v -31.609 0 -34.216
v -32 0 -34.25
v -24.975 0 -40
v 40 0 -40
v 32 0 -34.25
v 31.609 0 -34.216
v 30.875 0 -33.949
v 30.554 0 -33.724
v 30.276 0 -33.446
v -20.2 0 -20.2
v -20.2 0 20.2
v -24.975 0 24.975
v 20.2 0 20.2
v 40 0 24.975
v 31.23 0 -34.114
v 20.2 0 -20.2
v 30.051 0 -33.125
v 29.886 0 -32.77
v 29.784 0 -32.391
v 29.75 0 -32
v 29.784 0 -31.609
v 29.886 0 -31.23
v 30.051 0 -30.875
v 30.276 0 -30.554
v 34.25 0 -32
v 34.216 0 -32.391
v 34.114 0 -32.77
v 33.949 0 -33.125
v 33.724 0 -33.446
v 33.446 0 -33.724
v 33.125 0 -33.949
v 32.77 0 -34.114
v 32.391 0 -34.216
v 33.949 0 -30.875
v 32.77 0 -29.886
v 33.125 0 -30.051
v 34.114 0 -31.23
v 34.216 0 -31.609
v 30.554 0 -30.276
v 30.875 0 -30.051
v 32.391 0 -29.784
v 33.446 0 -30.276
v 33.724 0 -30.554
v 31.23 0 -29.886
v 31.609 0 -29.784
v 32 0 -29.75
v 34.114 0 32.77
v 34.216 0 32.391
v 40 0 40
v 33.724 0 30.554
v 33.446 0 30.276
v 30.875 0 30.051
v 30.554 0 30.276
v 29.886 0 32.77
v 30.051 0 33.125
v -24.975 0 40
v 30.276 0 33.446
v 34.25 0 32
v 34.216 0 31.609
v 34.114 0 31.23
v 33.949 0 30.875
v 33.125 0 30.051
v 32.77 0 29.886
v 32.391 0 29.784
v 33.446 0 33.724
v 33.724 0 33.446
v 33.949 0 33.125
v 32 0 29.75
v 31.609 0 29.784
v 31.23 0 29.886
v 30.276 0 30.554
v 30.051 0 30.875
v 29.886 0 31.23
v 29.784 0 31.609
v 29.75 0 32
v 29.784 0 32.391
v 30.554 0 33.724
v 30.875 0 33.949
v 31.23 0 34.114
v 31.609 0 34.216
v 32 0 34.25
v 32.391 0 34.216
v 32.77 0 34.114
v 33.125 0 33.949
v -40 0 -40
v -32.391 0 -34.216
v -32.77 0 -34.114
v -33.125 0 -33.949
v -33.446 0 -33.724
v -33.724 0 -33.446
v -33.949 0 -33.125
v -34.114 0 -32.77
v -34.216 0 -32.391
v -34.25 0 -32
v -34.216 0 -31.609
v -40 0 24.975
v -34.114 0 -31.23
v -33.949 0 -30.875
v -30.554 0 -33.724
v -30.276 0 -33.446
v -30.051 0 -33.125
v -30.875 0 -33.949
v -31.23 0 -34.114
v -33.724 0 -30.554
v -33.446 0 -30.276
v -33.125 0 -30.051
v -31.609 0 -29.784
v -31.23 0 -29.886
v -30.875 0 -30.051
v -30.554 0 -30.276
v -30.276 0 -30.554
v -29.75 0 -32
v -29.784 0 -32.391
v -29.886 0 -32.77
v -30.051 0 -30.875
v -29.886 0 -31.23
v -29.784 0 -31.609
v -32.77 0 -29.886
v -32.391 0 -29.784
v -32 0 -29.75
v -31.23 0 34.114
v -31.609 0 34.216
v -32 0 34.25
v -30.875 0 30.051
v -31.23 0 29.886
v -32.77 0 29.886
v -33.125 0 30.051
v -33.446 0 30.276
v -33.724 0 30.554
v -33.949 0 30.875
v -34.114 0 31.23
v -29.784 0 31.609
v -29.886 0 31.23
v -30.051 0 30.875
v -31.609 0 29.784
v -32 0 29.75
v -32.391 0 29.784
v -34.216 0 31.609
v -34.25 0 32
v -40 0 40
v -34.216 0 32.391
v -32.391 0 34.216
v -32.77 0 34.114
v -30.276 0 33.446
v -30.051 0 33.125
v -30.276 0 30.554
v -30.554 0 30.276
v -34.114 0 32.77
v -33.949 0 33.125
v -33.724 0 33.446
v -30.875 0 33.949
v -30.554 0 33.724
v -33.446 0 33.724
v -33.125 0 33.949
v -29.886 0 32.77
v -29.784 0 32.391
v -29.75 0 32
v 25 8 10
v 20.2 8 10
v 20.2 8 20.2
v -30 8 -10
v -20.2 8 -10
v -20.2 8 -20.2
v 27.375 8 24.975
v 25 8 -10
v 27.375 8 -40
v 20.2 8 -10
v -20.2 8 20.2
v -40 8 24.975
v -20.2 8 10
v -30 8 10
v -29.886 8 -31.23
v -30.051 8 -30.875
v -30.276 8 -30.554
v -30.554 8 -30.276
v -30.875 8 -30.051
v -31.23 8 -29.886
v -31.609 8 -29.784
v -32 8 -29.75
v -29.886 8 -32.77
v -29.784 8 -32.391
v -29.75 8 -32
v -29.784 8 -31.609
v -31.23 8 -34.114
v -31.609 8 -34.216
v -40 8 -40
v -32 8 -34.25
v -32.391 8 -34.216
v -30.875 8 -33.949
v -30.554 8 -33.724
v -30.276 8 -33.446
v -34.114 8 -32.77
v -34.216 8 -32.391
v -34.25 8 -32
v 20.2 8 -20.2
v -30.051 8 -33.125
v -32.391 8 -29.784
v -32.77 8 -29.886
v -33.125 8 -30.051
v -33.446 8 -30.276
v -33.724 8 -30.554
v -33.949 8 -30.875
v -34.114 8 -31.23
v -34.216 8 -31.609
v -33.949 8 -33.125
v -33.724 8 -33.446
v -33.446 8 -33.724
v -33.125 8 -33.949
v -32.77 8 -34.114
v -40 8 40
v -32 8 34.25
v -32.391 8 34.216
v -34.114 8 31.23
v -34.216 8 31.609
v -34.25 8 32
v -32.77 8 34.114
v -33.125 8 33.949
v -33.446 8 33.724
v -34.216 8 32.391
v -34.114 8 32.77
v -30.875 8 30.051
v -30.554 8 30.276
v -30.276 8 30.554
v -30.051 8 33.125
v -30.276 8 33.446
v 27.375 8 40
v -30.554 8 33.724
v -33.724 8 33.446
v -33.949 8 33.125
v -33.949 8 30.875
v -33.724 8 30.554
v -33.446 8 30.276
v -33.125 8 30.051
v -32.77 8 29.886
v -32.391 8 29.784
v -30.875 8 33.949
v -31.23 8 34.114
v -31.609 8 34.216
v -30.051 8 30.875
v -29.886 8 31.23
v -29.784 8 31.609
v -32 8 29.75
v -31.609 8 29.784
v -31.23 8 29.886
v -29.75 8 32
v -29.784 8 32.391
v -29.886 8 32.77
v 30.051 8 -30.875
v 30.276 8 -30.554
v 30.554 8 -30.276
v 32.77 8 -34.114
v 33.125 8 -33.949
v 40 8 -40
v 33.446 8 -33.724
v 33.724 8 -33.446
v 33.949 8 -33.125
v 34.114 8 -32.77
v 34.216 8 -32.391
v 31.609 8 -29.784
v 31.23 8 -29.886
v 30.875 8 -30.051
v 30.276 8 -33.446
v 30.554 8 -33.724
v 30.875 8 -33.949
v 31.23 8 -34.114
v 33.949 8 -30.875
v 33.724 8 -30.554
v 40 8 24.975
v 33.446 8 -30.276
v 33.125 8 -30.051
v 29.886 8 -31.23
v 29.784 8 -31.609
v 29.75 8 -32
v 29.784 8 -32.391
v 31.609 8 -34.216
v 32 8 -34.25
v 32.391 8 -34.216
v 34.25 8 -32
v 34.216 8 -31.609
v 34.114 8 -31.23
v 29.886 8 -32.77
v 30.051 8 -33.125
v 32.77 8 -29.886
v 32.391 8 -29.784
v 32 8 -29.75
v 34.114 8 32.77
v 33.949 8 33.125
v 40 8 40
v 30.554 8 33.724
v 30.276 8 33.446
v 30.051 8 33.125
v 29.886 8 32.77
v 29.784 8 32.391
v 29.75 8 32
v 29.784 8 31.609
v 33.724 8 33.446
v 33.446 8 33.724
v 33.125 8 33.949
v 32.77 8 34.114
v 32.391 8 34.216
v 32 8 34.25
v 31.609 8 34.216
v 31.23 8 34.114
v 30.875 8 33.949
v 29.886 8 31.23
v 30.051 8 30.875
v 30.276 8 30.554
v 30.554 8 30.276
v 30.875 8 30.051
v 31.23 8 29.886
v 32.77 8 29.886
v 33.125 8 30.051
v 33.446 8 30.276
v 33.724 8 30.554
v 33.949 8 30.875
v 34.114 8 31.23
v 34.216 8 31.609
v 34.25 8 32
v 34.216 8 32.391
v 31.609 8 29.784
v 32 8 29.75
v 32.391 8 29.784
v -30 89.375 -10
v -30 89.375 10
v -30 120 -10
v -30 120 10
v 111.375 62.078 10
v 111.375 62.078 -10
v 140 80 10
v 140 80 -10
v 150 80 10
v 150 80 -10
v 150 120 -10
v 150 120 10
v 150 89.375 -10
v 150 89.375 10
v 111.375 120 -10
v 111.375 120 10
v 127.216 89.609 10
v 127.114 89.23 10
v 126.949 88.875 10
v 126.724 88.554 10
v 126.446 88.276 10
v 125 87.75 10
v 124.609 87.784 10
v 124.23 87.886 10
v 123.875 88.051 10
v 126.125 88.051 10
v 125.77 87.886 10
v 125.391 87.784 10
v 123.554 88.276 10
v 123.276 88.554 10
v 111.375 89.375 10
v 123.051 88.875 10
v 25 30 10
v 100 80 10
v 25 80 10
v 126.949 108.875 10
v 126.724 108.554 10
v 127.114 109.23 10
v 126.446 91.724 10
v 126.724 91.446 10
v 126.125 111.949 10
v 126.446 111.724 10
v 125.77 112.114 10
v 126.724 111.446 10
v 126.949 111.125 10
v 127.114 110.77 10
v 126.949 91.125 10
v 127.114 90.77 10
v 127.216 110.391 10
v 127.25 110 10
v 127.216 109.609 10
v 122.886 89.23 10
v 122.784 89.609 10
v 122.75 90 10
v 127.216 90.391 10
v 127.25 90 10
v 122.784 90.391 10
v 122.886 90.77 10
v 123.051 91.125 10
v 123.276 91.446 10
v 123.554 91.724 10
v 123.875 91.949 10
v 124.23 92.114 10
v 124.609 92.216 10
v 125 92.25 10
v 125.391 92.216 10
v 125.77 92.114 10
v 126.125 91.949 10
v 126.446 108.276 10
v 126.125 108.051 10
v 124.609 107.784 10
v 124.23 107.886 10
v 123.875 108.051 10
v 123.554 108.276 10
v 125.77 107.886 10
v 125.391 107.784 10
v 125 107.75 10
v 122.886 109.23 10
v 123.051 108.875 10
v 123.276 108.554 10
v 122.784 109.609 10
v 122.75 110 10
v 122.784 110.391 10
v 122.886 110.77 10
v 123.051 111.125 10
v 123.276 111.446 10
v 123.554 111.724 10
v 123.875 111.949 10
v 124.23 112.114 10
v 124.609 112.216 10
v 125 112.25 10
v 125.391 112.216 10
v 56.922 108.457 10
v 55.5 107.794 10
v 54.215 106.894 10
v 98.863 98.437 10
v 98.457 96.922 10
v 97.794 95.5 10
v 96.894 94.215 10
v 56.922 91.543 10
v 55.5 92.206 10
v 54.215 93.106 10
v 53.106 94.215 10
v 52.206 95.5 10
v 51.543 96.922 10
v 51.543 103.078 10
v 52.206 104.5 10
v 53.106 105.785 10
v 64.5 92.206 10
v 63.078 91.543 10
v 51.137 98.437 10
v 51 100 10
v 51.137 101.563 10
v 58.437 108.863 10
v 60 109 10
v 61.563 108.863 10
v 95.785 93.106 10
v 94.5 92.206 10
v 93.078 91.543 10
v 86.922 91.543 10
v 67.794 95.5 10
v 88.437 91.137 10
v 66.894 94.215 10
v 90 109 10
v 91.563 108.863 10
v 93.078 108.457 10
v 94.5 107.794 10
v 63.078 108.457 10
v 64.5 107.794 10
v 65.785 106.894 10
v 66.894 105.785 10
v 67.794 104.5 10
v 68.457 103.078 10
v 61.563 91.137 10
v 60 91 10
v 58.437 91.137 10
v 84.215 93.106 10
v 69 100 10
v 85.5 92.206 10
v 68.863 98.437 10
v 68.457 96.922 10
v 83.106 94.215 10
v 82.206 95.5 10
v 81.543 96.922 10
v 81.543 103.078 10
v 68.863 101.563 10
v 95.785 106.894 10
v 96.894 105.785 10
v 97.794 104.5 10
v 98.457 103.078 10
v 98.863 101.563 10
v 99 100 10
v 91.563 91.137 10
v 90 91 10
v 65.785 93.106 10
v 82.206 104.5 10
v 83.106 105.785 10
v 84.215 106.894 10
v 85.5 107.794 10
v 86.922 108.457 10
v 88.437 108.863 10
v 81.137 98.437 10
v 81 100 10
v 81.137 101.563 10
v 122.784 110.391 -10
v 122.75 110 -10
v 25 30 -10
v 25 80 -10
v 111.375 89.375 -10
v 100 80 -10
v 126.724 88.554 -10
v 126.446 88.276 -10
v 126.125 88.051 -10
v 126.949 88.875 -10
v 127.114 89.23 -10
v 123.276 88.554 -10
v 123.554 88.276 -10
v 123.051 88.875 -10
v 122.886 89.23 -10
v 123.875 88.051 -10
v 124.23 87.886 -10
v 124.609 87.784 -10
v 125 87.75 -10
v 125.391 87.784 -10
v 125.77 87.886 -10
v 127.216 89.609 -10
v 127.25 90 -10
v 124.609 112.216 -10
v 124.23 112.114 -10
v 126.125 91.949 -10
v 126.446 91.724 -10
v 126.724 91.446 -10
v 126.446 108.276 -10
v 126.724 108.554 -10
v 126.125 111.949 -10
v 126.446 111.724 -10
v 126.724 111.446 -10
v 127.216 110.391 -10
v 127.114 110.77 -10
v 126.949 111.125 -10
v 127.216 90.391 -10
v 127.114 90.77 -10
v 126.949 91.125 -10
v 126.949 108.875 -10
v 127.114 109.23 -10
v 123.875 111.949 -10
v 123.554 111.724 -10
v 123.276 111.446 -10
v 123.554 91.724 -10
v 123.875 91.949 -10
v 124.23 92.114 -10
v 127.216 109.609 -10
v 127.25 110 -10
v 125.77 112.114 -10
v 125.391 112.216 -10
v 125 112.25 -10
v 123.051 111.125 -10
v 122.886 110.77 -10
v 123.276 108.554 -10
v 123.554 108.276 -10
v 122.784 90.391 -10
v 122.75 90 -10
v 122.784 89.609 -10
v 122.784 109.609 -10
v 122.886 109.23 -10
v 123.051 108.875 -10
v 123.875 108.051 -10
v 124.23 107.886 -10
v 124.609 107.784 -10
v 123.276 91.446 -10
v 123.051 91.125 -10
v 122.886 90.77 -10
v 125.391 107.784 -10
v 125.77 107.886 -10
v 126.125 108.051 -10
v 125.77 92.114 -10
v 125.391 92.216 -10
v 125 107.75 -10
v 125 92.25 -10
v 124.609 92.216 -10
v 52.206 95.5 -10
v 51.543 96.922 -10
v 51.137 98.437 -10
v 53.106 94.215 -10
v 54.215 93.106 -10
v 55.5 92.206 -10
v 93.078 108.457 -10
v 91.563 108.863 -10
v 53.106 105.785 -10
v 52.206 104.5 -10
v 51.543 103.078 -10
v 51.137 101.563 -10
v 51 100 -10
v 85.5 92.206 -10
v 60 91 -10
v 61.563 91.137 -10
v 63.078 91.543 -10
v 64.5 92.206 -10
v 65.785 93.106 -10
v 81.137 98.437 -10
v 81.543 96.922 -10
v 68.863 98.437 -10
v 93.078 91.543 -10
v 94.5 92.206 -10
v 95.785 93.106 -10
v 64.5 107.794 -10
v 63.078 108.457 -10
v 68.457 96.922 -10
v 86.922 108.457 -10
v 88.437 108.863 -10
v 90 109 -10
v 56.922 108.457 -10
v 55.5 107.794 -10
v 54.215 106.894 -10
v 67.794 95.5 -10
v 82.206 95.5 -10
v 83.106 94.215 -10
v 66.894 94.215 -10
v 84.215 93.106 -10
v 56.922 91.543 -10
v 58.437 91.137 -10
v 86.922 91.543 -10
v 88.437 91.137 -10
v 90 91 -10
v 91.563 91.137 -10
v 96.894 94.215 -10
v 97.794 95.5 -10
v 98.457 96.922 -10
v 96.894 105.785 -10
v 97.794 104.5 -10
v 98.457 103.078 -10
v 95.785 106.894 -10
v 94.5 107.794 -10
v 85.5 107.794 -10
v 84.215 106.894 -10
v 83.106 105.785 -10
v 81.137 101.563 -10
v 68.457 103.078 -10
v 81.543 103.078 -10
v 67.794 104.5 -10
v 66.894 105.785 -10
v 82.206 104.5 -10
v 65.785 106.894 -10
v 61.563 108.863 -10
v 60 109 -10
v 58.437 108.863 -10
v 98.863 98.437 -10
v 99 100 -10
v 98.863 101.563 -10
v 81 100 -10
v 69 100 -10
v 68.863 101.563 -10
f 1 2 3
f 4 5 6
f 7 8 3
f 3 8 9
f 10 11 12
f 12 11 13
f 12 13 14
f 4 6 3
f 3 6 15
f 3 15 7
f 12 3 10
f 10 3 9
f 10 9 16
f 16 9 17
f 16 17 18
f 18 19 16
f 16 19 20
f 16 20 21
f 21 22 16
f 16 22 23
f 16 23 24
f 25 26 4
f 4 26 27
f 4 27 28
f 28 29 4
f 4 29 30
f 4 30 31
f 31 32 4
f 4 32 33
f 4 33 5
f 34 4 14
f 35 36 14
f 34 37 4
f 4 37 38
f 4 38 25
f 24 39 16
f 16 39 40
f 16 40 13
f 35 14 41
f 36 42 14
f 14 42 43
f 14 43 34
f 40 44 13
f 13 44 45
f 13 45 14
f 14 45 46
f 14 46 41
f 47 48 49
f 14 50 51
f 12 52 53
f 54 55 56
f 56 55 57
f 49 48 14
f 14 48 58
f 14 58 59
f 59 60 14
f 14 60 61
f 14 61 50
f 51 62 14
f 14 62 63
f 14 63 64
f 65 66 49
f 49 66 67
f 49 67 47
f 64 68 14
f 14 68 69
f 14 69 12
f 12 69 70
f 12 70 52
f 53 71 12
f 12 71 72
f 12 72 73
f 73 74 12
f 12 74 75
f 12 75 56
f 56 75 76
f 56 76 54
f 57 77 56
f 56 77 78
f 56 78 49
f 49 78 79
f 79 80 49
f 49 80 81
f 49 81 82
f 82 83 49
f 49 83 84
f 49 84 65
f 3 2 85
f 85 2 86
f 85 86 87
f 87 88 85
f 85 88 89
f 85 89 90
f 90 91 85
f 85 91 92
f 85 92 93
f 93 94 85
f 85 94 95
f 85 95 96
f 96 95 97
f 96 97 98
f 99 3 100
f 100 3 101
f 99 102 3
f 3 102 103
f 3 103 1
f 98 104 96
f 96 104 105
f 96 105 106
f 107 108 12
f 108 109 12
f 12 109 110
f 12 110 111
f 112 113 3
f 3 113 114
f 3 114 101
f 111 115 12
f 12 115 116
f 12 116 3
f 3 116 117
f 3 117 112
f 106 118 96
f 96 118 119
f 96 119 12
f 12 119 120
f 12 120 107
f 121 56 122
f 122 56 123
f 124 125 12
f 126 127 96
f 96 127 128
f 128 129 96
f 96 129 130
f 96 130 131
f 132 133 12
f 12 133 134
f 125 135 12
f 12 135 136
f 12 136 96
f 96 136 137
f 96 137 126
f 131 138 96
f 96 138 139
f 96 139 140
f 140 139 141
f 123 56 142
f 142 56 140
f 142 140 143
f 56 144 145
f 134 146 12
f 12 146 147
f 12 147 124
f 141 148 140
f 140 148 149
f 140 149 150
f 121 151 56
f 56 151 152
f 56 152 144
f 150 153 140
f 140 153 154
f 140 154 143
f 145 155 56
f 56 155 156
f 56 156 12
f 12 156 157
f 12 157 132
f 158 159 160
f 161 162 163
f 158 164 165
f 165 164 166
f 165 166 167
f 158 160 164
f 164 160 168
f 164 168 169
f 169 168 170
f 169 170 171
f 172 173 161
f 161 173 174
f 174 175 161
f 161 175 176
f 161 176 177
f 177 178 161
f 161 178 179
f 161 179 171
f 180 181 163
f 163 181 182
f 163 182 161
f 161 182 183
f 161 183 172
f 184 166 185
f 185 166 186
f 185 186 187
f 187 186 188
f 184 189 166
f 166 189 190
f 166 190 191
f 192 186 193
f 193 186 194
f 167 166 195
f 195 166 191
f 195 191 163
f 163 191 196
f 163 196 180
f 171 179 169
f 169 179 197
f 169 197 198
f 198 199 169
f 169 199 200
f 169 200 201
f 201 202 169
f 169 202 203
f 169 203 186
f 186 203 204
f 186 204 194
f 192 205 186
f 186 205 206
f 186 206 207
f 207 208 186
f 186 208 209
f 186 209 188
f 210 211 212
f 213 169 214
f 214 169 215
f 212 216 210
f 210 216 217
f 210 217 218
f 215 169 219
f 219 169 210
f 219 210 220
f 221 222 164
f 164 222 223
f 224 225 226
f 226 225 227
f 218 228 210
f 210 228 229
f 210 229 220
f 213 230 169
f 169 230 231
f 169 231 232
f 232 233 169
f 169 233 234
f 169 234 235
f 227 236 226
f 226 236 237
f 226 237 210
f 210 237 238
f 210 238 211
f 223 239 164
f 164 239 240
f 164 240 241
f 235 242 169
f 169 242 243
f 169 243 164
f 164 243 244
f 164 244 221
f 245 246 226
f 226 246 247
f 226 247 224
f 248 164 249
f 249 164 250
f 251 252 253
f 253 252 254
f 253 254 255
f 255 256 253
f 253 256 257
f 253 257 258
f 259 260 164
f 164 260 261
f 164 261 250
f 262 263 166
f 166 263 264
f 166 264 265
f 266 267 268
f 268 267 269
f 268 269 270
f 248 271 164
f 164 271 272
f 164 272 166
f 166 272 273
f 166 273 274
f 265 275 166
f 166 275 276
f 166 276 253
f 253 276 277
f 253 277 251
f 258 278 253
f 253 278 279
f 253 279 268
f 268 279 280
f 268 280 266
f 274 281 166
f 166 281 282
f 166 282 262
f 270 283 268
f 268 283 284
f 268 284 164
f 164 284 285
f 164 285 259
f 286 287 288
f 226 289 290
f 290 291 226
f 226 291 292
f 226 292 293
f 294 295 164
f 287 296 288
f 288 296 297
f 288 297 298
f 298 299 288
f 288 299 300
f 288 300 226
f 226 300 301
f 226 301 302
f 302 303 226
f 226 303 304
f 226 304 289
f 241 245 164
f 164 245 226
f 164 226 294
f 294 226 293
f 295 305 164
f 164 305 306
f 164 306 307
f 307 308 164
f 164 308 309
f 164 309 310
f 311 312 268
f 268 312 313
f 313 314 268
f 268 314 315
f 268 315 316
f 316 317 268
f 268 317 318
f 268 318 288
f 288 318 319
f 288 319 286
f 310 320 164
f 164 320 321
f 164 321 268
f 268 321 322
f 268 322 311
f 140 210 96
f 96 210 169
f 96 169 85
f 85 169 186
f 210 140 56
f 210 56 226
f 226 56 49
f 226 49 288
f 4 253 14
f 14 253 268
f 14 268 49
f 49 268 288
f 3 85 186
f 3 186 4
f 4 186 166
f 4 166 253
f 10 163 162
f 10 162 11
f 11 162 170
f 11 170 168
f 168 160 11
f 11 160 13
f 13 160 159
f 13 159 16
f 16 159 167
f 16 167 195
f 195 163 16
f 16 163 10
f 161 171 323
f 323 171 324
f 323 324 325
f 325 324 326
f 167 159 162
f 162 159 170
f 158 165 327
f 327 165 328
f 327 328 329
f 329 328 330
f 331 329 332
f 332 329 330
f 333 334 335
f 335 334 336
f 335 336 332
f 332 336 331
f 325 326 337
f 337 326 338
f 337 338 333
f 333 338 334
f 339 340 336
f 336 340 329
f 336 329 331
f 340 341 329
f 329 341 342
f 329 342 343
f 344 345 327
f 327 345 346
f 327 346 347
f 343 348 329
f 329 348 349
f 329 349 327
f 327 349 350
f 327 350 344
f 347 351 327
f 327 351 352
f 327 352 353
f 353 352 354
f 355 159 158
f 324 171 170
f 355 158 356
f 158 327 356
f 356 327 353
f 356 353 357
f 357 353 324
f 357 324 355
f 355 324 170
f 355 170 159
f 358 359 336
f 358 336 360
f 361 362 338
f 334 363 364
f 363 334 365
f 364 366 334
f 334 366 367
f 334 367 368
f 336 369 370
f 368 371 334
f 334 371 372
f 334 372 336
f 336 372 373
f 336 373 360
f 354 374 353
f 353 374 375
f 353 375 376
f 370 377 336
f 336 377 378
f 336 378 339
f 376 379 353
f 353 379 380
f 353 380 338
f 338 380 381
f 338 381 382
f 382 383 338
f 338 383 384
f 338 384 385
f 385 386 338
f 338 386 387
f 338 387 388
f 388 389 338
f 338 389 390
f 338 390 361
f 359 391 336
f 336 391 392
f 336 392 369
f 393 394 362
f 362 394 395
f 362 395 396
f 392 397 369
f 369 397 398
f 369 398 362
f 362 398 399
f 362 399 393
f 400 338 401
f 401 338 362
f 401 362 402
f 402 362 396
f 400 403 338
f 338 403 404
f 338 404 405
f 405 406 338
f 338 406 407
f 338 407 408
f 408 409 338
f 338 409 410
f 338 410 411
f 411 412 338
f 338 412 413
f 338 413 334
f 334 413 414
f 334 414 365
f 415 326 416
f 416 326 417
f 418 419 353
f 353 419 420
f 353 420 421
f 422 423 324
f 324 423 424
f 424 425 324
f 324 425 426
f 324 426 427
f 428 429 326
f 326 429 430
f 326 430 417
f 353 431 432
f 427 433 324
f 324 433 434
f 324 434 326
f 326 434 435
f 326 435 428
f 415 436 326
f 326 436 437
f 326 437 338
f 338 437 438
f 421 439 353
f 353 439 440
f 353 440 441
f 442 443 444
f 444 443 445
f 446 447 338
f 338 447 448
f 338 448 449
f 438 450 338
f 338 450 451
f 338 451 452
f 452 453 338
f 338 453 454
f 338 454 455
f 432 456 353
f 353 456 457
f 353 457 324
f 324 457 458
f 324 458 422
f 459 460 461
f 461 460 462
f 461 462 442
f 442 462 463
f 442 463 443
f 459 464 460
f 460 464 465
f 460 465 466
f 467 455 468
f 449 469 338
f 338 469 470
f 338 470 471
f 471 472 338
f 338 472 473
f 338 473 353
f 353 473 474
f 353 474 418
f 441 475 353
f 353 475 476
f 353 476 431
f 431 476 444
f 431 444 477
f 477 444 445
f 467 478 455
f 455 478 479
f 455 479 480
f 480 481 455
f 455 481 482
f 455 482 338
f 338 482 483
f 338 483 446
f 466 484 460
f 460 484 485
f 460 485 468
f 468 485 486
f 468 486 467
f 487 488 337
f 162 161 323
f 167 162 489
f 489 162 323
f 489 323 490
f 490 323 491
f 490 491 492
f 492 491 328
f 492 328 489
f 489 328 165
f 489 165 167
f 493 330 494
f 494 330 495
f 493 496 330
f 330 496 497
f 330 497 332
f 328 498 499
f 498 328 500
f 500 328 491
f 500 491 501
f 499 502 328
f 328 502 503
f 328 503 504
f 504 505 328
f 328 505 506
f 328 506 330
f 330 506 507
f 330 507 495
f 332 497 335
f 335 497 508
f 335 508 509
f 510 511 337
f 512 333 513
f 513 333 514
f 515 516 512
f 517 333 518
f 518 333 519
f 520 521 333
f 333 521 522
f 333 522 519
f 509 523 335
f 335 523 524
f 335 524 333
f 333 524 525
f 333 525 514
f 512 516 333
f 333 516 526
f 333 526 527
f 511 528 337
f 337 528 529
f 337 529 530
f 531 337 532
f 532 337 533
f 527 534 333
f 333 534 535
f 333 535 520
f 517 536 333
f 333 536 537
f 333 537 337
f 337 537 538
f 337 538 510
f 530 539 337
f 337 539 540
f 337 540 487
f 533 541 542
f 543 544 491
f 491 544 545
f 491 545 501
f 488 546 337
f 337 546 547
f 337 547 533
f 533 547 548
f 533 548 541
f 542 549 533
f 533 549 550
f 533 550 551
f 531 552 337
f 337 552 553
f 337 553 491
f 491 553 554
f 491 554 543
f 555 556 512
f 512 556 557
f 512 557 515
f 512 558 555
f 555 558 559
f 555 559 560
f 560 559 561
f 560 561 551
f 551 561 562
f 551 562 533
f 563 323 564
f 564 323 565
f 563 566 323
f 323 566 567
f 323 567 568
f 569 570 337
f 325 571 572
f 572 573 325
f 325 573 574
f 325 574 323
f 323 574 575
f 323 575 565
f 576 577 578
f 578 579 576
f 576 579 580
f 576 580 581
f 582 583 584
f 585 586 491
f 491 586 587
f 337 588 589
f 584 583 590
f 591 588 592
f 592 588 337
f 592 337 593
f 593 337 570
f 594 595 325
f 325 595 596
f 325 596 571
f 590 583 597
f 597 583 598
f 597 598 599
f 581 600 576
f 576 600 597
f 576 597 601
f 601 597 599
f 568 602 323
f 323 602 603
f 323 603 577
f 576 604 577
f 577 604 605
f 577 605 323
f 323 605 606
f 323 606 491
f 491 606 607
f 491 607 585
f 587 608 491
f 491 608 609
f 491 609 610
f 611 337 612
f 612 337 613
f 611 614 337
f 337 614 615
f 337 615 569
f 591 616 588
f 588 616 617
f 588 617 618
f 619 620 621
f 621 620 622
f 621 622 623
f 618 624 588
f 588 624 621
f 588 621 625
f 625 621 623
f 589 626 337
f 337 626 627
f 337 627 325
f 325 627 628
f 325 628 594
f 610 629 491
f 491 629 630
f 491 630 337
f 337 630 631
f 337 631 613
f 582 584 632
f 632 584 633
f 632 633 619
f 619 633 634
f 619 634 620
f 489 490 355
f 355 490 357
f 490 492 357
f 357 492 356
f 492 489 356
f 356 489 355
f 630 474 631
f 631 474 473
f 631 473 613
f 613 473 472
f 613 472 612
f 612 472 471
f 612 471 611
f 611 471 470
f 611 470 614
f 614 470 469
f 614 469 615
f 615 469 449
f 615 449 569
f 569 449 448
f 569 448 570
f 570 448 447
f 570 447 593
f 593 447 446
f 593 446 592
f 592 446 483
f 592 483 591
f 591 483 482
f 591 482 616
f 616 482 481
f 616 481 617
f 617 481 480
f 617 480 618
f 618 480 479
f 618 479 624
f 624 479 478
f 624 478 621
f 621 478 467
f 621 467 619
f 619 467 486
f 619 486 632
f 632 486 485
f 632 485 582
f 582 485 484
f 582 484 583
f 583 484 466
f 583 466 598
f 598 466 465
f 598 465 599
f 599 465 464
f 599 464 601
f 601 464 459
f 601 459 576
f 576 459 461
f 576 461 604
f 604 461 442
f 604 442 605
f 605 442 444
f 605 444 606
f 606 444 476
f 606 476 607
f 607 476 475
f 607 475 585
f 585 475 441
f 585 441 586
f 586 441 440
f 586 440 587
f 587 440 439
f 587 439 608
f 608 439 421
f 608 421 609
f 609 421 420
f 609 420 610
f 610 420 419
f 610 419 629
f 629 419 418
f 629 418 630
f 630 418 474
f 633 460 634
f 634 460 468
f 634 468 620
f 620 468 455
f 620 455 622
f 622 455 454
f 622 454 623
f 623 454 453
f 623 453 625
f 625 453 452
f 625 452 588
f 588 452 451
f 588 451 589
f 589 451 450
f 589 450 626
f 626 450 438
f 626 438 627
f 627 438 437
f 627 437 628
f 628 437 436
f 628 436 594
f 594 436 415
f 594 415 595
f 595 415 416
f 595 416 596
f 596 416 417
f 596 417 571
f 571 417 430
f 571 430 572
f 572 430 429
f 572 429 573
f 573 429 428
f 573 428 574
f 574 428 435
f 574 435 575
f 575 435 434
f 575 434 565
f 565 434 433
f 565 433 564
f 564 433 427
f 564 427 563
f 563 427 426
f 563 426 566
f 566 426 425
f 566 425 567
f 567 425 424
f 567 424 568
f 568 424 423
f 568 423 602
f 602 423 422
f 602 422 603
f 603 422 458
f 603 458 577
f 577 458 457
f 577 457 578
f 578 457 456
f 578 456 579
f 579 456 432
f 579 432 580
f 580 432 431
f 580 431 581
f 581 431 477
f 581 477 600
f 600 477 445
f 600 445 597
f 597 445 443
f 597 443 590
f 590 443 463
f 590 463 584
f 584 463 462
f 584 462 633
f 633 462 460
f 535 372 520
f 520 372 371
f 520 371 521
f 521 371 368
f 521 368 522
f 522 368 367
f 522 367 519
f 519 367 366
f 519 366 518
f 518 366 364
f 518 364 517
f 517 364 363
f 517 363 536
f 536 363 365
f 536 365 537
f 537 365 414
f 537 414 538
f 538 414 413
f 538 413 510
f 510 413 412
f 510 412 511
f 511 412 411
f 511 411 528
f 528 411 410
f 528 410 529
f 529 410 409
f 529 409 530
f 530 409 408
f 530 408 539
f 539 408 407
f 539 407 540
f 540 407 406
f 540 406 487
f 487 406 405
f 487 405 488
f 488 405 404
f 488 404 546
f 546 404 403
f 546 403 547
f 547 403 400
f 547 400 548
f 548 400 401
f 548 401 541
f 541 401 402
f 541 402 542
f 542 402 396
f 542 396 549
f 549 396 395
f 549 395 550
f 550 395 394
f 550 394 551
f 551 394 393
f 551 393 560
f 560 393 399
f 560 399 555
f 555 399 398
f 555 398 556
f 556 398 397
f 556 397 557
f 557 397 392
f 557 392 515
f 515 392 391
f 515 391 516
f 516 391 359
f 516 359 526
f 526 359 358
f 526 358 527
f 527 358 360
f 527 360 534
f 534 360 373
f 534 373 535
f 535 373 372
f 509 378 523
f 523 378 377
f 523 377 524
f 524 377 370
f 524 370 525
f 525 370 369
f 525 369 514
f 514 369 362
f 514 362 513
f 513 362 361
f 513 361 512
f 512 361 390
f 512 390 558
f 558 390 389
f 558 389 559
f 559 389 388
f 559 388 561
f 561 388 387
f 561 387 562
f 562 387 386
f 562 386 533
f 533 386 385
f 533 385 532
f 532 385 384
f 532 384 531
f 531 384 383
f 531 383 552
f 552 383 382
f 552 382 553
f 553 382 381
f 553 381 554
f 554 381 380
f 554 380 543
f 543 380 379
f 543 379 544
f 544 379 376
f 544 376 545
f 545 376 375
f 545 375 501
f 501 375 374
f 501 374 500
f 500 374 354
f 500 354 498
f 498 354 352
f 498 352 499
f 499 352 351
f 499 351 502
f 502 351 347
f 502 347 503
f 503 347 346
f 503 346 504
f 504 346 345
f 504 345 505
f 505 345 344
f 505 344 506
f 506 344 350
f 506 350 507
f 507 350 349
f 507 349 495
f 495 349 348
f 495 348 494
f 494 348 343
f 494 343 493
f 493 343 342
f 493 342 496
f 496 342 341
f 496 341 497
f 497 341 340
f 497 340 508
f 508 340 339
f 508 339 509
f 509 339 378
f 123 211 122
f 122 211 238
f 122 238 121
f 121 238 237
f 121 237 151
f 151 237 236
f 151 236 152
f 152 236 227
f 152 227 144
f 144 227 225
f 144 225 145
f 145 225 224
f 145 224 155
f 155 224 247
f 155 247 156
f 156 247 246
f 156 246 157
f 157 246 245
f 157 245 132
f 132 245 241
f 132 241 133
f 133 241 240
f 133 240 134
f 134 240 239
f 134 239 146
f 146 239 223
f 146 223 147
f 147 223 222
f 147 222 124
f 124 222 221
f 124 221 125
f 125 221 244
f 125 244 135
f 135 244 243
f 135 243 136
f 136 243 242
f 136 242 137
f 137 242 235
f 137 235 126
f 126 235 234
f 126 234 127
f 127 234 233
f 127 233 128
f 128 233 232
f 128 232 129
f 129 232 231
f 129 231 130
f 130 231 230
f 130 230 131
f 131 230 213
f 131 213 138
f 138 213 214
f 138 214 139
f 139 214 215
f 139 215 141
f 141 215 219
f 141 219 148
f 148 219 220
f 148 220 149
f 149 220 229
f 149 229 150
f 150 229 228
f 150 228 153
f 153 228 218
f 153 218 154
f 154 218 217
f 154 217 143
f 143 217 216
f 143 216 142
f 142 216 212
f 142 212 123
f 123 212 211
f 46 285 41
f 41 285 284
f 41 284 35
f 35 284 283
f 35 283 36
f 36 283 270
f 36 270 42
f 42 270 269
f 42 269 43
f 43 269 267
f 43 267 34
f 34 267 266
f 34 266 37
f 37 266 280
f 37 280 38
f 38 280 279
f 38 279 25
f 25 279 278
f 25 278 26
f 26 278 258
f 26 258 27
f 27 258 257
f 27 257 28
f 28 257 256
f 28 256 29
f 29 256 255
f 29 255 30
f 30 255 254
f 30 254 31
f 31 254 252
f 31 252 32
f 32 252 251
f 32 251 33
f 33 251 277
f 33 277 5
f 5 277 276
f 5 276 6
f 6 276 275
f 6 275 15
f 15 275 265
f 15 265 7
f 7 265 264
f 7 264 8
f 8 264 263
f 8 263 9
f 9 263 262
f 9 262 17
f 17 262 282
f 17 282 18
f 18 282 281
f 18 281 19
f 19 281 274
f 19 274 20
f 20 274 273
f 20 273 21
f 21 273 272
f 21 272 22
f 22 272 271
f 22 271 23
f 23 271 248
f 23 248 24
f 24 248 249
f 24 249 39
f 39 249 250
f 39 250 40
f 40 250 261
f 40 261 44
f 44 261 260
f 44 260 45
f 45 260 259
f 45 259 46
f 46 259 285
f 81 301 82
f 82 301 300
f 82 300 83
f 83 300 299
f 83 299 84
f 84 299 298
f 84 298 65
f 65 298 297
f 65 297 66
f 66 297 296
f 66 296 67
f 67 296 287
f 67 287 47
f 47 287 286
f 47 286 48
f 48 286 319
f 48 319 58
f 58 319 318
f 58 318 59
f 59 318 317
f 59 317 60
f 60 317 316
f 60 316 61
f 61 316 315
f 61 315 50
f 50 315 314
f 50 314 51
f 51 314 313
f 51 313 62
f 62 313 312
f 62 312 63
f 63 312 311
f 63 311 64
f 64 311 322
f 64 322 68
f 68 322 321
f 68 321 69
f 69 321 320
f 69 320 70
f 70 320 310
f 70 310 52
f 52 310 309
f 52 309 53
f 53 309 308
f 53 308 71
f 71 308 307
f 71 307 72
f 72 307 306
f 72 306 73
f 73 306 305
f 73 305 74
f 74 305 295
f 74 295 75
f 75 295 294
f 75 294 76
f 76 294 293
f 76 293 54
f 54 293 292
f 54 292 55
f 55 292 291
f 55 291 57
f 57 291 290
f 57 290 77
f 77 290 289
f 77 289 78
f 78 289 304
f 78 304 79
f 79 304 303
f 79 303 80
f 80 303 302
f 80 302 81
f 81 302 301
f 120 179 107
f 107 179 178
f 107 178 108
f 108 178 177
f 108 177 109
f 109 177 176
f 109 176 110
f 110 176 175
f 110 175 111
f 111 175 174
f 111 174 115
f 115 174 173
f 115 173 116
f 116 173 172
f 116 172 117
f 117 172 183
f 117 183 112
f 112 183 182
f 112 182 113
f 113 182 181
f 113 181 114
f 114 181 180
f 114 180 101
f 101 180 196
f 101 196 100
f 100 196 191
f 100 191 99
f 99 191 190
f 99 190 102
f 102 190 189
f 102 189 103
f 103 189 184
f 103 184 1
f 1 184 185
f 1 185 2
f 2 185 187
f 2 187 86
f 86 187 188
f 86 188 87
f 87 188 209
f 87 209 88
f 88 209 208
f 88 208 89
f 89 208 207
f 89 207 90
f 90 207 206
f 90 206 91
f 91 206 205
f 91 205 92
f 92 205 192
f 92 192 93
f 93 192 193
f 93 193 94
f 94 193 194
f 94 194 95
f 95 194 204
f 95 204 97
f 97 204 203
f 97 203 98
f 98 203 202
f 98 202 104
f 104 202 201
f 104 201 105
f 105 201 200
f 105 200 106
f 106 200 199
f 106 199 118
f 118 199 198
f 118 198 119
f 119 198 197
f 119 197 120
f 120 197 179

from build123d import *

# Parameters (mm, degrees)
SKETCH_1_W                  = 80
SKETCH_1_H                  = 80
SKETCH_1_W_2                = 40.4
SKETCH_1_H_2                = 40.4
EXTRUDE_273_DEPTH           = 8
EXTRUDE_START               = -10
EXTRUDE_351_DEPTH           = 20
CUT_EXTRUDE_442_DEPTH       = 197.214168703
CUT_EXTRUDE_442_DEPTH_BACK  = 197.214168703
CUT_EXTRUDE_500_DEPTH       = 197.214168703
CUT_EXTRUDE_500_DEPTH_BACK  = 197.214168703
SKETCH_4_R                  = 9
CUT_EXTRUDE_M4_DEPTH        = 197.214168703
CUT_EXTRUDE_M4_DEPTH_BACK   = 197.214168703
SKETCH_5_R                  = 2.25
CUT_EXTRUDE_M4_2_DEPTH      = 197.214168703
CUT_EXTRUDE_M4_2_DEPTH_BACK = 197.214168703
SKETCH_6_R                  = 2.25


with BuildPart() as part:
    # 草图1 → Extrude 273 (new body)
    with BuildSketch(Plane(origin=(0, 0, 0), x_dir=(1, 0, 0), z_dir=(0, 1, 0))):
        Rectangle(SKETCH_1_W, SKETCH_1_H)
        Rectangle(SKETCH_1_W_2, SKETCH_1_H_2, mode=Mode.SUBTRACT)
    extrude(amount=EXTRUDE_273_DEPTH)

    # 草图2 → Extrude 351 (add)
    with BuildSketch(Plane.XY.offset(EXTRUDE_START)):
        Polygon((-30, 8), (25, 8), (140, 80), (150, 80), (150, 120), (-30, 120), align=None)
    extrude(amount=EXTRUDE_351_DEPTH)

    # 草图3 → Cut-Extrude 442 (cut, two sides: drawn at the far end of the back side and taken through both)
    with BuildSketch(Plane.XY.offset(-CUT_EXTRUDE_442_DEPTH_BACK)):
        Polygon((25, 30), (100, 80), (25, 80), align=None)
    extrude(amount=CUT_EXTRUDE_442_DEPTH + CUT_EXTRUDE_442_DEPTH_BACK, mode=Mode.SUBTRACT)

    # 草图4 → Cut-Extrude 500 (cut, two sides: drawn at the far end of the back side and taken through both)
    with BuildSketch(Plane.XY.offset(-CUT_EXTRUDE_500_DEPTH_BACK)):
        with Locations((60, 100)):
            Circle(SKETCH_4_R)
        with Locations((90, 100)):
            Circle(SKETCH_4_R)
    extrude(amount=CUT_EXTRUDE_500_DEPTH + CUT_EXTRUDE_500_DEPTH_BACK, mode=Mode.SUBTRACT)

    # 草图5 → Cut-Extrude M4 (cut, two sides: drawn at the far end of the back side and taken through both)
    with BuildSketch(Plane.XY.offset(-CUT_EXTRUDE_M4_DEPTH_BACK)):
        with Locations((125, 90)):
            Circle(SKETCH_5_R)
        with Locations((125, 110)):
            Circle(SKETCH_5_R)
    extrude(amount=CUT_EXTRUDE_M4_DEPTH + CUT_EXTRUDE_M4_DEPTH_BACK, mode=Mode.SUBTRACT)

    # 草图6 → Cut-Extrude M4 2 (cut, two sides: drawn at the far end of the back side and taken through both)
    with BuildSketch(Plane(origin=(0, 0, 0), x_dir=(1, 0, 0), z_dir=(0, 1, 0)).offset(-CUT_EXTRUDE_M4_2_DEPTH_BACK)):
        with Locations(Location((-32, -32, 0), (0, 0, 270))):
            Circle(SKETCH_6_R)
        with Locations(Location((-32, 32, 0), (0, 0, 270))):
            Circle(SKETCH_6_R)
        with Locations(Location((32, -32, 0), (0, 0, 270))):
            Circle(SKETCH_6_R)
        with Locations(Location((32, 32, 0), (0, 0, 270))):
            Circle(SKETCH_6_R)
    extrude(amount=CUT_EXTRUDE_M4_2_DEPTH + CUT_EXTRUDE_M4_2_DEPTH_BACK, mode=Mode.SUBTRACT)


solid = part.part
